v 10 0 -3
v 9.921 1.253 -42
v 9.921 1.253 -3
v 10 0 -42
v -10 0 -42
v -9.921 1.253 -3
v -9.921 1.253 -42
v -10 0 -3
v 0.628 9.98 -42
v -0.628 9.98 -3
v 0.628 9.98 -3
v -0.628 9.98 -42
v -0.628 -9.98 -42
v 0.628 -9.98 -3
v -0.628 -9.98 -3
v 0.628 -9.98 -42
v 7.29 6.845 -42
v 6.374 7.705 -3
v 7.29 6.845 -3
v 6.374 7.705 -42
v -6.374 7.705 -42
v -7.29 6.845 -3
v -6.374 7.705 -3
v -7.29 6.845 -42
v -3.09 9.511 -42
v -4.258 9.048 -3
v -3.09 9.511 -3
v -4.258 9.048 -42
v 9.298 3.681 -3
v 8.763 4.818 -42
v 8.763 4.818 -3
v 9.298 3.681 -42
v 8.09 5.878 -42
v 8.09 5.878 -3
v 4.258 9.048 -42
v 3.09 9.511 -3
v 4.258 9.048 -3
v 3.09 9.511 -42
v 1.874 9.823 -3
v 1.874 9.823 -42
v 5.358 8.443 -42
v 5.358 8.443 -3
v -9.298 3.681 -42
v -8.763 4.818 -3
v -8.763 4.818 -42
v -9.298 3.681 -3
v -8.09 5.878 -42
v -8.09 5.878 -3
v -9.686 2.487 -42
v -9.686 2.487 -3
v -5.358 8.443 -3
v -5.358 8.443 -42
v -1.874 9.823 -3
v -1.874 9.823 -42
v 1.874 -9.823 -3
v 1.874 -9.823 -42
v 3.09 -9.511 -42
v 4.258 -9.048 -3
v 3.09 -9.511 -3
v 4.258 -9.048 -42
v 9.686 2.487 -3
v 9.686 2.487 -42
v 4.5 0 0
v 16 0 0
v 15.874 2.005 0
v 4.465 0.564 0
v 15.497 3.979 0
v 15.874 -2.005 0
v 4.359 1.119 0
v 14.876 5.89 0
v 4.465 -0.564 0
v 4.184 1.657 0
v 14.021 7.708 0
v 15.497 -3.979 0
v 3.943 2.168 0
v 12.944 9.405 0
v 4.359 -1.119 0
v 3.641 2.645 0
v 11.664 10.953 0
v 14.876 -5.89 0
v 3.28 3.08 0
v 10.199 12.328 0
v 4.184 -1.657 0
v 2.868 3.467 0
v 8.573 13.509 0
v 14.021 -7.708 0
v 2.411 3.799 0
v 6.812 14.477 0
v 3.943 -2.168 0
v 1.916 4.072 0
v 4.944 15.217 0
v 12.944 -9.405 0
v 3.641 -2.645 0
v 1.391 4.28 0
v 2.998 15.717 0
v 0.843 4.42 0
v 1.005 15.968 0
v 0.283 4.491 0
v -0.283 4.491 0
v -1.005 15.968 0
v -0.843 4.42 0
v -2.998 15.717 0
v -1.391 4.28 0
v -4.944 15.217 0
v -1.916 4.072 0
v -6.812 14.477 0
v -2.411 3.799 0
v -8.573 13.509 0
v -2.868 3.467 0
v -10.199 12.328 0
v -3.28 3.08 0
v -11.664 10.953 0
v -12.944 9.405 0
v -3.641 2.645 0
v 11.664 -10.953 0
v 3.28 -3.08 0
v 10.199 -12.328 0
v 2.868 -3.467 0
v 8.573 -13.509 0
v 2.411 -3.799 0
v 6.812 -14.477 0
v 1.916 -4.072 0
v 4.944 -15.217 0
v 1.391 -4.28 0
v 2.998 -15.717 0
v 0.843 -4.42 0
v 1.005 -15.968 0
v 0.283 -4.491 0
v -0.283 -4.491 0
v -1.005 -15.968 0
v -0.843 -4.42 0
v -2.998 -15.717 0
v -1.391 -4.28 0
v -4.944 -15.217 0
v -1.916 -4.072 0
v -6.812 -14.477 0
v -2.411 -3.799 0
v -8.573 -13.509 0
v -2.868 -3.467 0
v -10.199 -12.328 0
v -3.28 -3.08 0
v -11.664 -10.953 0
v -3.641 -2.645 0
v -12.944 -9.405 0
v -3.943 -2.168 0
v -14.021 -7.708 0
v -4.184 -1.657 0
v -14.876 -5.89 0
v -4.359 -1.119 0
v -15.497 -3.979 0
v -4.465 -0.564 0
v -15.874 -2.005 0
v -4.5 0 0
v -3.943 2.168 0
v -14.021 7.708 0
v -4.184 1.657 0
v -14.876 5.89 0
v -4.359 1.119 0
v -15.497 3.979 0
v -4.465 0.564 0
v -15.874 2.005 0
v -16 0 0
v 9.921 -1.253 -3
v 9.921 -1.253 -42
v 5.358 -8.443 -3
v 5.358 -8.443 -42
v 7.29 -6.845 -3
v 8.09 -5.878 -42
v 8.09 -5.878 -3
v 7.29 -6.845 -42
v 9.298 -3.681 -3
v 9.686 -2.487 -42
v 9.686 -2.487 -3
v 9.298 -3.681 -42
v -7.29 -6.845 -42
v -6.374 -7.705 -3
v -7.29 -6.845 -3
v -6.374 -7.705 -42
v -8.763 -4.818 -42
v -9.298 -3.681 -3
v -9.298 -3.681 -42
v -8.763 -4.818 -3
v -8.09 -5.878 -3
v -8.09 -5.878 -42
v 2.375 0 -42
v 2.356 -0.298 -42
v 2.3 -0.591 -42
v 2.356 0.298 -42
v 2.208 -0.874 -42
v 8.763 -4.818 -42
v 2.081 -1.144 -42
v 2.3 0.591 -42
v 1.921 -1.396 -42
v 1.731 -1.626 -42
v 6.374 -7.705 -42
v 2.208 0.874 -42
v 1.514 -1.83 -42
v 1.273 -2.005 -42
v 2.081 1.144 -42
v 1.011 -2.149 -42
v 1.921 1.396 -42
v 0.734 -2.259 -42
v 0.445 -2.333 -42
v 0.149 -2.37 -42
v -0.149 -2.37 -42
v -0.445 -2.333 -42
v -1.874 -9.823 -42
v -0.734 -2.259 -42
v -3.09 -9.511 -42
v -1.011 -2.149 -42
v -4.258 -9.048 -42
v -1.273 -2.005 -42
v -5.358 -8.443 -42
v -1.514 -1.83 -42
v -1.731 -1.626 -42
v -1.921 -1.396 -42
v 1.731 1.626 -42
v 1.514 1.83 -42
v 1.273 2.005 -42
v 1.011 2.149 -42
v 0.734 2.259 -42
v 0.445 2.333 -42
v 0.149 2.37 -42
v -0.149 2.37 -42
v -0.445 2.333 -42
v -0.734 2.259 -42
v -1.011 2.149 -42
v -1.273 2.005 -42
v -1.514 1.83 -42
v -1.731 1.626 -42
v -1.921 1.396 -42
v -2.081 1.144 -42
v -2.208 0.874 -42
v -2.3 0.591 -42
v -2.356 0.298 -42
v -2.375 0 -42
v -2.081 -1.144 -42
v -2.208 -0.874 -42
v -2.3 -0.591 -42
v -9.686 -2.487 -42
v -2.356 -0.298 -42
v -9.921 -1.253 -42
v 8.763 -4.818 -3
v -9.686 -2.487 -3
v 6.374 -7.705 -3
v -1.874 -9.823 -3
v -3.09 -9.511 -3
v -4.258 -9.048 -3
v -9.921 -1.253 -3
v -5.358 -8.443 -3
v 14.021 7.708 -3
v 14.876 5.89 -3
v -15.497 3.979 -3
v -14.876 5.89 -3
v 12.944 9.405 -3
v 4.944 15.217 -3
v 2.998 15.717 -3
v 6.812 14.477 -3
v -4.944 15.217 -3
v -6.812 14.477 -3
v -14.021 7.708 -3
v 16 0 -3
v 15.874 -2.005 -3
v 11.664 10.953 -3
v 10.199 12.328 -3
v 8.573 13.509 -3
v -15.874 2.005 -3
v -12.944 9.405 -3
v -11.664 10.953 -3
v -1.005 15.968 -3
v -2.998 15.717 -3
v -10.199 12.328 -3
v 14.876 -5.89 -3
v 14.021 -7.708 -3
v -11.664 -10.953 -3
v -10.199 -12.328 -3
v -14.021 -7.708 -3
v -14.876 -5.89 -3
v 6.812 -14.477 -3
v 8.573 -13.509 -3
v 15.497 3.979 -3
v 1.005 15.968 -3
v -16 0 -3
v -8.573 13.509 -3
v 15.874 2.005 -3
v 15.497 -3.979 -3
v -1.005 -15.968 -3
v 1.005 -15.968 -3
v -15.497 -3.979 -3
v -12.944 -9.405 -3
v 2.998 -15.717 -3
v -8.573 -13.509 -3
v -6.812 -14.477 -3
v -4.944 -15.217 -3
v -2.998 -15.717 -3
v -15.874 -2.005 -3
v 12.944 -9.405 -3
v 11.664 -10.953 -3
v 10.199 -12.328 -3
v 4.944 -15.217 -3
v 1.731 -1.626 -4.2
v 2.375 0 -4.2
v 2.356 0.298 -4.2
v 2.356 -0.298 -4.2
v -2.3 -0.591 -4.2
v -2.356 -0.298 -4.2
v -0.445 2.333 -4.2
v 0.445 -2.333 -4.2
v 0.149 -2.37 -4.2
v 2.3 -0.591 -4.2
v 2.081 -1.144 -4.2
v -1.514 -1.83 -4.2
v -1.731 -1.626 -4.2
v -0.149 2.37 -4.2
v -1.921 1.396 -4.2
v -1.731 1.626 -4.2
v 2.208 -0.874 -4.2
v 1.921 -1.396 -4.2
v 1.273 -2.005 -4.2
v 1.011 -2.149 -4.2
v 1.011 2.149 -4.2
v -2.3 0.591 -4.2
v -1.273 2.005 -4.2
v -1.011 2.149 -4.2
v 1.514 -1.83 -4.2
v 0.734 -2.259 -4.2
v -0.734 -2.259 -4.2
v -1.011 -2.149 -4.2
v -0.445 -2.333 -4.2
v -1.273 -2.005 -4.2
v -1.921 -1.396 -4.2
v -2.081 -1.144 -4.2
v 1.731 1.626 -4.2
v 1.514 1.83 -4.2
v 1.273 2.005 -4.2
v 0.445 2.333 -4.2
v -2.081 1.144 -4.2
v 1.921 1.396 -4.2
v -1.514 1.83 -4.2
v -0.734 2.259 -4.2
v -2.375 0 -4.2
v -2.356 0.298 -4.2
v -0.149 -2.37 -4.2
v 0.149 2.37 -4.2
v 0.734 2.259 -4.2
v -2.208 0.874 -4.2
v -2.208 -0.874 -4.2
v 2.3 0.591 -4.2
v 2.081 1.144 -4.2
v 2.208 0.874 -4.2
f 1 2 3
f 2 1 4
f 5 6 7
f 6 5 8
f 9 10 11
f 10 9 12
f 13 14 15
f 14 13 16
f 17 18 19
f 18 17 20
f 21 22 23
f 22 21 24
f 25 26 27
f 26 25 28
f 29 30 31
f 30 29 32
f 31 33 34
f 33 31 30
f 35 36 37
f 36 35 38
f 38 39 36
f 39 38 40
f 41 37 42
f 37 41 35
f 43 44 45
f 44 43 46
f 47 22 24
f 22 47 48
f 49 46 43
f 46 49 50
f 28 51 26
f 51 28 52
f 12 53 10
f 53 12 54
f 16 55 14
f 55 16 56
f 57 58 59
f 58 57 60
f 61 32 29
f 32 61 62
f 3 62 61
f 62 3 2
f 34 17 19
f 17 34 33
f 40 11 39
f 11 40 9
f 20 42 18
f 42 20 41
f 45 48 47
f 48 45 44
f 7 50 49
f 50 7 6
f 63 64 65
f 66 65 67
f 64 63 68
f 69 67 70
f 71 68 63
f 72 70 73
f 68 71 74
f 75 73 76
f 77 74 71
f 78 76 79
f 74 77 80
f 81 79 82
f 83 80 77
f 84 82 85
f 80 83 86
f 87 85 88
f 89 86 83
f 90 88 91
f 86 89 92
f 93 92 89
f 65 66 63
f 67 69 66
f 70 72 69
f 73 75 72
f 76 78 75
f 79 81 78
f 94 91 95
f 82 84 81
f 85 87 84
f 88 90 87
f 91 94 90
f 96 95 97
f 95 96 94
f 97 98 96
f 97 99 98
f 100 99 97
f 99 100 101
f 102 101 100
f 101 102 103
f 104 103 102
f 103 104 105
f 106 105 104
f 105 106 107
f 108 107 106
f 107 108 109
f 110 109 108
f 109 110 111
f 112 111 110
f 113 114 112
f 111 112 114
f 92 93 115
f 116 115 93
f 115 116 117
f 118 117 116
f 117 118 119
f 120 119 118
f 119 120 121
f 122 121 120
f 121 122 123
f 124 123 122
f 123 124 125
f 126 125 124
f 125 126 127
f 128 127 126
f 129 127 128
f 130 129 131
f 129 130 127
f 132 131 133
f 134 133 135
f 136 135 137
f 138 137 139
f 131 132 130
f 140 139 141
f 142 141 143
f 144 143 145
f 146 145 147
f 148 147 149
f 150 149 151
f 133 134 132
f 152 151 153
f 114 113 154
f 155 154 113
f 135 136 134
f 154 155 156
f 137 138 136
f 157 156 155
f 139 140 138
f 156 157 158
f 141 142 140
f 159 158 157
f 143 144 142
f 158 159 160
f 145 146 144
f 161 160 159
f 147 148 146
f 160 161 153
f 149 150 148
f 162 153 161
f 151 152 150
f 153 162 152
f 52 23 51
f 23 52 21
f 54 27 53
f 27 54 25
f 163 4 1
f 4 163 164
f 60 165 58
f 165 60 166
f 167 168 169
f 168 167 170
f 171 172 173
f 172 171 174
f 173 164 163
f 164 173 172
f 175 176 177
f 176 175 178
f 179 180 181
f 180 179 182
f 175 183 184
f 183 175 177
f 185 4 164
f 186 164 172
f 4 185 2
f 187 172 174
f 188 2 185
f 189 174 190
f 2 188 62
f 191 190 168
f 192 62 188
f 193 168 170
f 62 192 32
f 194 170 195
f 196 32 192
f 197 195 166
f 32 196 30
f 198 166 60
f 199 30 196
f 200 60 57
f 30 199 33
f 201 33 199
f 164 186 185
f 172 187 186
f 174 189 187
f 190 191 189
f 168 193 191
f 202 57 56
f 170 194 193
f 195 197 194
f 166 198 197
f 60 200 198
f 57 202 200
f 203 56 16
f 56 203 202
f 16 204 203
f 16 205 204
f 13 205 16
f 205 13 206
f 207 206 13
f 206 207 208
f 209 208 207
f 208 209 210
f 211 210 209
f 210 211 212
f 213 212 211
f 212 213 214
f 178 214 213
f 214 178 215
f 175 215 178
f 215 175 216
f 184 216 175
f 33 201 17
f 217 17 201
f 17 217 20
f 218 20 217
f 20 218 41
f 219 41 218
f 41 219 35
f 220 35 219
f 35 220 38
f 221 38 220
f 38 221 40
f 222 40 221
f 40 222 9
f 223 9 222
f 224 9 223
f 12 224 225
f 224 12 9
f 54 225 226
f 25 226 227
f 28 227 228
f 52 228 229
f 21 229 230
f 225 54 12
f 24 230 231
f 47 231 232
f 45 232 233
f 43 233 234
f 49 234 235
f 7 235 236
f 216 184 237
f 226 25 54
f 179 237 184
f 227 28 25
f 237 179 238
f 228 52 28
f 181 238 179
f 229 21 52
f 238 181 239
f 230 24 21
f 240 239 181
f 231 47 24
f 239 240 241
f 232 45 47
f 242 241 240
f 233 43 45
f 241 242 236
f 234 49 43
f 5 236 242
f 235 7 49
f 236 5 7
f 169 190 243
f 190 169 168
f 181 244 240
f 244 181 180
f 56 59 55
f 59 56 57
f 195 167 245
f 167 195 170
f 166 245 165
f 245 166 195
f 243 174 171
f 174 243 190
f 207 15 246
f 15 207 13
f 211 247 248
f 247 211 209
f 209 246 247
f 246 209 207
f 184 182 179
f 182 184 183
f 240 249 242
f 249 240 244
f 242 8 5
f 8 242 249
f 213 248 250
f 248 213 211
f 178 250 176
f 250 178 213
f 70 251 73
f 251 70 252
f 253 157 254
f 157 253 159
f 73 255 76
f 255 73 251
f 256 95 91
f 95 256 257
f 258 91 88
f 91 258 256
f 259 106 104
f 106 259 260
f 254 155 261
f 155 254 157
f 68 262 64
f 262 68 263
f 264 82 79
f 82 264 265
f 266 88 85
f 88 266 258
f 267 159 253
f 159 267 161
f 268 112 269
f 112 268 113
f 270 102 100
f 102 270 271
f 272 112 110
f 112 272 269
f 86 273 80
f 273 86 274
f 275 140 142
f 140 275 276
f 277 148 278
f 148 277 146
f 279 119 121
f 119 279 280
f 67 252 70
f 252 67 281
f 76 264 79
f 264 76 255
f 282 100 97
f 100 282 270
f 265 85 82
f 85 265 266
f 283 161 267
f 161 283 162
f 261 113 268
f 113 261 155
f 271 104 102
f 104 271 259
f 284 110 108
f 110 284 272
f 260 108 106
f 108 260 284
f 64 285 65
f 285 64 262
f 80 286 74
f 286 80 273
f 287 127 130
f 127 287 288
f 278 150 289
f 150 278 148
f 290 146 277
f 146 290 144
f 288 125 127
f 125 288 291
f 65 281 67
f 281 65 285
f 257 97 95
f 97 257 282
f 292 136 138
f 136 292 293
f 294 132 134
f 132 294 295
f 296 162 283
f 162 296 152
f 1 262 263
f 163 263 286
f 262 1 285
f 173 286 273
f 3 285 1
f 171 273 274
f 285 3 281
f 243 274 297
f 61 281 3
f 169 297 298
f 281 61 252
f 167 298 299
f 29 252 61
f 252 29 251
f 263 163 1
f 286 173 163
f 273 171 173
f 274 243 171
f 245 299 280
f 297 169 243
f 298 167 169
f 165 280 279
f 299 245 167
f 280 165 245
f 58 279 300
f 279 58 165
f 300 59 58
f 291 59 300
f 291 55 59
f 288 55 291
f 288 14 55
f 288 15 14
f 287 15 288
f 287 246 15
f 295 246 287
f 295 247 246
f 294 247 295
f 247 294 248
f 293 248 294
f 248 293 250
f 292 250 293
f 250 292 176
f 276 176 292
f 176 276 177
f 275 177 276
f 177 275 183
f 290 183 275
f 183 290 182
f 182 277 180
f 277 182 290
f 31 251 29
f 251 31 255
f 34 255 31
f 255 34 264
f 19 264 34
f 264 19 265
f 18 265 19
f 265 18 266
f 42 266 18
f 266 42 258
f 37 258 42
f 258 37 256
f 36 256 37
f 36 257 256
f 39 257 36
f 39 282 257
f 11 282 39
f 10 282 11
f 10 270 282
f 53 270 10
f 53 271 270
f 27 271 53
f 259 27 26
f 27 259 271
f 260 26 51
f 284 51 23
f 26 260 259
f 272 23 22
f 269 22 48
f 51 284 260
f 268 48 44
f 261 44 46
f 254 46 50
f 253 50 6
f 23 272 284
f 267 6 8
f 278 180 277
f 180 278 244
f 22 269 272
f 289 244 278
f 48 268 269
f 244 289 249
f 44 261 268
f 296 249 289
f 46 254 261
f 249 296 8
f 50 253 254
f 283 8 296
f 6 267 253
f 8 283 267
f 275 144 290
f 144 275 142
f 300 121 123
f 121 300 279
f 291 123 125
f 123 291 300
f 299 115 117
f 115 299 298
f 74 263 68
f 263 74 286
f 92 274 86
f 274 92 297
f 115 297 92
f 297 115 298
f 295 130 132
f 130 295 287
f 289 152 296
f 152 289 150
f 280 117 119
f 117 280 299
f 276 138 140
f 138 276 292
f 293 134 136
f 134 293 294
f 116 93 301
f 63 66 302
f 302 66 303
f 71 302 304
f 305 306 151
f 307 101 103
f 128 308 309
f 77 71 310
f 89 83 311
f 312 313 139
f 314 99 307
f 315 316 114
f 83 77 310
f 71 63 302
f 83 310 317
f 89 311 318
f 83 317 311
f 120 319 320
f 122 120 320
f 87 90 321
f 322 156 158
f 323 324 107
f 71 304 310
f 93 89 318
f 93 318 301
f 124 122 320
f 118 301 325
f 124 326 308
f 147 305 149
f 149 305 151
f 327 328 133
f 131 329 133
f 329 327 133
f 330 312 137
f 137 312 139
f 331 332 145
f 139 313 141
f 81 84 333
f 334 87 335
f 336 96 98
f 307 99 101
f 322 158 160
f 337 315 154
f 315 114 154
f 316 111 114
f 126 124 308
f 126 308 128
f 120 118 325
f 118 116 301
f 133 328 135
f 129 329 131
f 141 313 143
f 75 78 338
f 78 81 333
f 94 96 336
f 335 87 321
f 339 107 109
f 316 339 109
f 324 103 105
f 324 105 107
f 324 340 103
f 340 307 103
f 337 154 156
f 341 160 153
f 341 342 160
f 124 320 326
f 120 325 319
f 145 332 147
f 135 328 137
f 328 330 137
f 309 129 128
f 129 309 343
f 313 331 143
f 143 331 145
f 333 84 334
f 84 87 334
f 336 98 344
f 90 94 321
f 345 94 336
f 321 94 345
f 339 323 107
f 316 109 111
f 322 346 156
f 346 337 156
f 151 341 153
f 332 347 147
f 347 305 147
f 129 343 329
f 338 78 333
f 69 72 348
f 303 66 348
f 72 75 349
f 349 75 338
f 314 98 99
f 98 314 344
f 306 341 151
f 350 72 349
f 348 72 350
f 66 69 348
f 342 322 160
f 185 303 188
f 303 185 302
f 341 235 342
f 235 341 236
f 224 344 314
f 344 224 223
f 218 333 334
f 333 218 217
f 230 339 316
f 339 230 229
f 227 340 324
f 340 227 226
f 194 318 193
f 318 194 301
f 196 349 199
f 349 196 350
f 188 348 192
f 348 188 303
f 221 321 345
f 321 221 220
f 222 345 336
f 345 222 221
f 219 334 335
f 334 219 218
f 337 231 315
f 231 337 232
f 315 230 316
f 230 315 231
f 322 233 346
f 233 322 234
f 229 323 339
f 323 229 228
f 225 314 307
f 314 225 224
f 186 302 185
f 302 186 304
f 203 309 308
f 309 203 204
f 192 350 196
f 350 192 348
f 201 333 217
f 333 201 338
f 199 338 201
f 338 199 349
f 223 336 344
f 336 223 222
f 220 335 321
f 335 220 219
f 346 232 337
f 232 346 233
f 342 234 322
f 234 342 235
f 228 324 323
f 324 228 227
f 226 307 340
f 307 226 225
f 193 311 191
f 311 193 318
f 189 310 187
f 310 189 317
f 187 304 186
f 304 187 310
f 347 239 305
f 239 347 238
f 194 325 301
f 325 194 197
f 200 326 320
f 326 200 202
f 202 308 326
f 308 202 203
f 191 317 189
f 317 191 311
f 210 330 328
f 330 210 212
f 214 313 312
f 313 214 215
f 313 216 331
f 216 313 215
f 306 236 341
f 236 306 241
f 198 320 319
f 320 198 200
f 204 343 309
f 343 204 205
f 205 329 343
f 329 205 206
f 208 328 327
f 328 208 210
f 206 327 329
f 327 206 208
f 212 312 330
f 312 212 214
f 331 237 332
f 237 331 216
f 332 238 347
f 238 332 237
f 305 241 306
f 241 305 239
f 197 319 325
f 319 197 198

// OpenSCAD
$fn = 50;


difference() {
	union() {
		translate(v = [0, 0, -42.0000000000]) {
			cylinder(h = 42, r = 10.0000000000);
		}
		translate(v = [0, 0, -3.0000000000]) {
			cylinder(h = 3, r = 16.0000000000);
		}
	}
	union() {
		translate(v = [0, 0, 0]) {
			rotate(a = [0, 0, 0]) {
				difference() {
					union() {
						#translate(v = [0, 0, -42.0000000000]) {
							cylinder(h = 42, r = 2.2500000000);
						}
						#translate(v = [0, 0, -4.2000000000]) {
							cylinder(h = 4.2000000000, r1 = 2.3750000000, r2 = 4.5000000000);
						}
						#translate(v = [0, 0, -42.0000000000]) {
							cylinder(h = 42, r = 2.3750000000);
						}
						#translate(v = [0, 0, -42.0000000000]) {
							cylinder(h = 42, r = 2.2500000000);
						}
					}
					union();
				}
			}
		}
	}
}
